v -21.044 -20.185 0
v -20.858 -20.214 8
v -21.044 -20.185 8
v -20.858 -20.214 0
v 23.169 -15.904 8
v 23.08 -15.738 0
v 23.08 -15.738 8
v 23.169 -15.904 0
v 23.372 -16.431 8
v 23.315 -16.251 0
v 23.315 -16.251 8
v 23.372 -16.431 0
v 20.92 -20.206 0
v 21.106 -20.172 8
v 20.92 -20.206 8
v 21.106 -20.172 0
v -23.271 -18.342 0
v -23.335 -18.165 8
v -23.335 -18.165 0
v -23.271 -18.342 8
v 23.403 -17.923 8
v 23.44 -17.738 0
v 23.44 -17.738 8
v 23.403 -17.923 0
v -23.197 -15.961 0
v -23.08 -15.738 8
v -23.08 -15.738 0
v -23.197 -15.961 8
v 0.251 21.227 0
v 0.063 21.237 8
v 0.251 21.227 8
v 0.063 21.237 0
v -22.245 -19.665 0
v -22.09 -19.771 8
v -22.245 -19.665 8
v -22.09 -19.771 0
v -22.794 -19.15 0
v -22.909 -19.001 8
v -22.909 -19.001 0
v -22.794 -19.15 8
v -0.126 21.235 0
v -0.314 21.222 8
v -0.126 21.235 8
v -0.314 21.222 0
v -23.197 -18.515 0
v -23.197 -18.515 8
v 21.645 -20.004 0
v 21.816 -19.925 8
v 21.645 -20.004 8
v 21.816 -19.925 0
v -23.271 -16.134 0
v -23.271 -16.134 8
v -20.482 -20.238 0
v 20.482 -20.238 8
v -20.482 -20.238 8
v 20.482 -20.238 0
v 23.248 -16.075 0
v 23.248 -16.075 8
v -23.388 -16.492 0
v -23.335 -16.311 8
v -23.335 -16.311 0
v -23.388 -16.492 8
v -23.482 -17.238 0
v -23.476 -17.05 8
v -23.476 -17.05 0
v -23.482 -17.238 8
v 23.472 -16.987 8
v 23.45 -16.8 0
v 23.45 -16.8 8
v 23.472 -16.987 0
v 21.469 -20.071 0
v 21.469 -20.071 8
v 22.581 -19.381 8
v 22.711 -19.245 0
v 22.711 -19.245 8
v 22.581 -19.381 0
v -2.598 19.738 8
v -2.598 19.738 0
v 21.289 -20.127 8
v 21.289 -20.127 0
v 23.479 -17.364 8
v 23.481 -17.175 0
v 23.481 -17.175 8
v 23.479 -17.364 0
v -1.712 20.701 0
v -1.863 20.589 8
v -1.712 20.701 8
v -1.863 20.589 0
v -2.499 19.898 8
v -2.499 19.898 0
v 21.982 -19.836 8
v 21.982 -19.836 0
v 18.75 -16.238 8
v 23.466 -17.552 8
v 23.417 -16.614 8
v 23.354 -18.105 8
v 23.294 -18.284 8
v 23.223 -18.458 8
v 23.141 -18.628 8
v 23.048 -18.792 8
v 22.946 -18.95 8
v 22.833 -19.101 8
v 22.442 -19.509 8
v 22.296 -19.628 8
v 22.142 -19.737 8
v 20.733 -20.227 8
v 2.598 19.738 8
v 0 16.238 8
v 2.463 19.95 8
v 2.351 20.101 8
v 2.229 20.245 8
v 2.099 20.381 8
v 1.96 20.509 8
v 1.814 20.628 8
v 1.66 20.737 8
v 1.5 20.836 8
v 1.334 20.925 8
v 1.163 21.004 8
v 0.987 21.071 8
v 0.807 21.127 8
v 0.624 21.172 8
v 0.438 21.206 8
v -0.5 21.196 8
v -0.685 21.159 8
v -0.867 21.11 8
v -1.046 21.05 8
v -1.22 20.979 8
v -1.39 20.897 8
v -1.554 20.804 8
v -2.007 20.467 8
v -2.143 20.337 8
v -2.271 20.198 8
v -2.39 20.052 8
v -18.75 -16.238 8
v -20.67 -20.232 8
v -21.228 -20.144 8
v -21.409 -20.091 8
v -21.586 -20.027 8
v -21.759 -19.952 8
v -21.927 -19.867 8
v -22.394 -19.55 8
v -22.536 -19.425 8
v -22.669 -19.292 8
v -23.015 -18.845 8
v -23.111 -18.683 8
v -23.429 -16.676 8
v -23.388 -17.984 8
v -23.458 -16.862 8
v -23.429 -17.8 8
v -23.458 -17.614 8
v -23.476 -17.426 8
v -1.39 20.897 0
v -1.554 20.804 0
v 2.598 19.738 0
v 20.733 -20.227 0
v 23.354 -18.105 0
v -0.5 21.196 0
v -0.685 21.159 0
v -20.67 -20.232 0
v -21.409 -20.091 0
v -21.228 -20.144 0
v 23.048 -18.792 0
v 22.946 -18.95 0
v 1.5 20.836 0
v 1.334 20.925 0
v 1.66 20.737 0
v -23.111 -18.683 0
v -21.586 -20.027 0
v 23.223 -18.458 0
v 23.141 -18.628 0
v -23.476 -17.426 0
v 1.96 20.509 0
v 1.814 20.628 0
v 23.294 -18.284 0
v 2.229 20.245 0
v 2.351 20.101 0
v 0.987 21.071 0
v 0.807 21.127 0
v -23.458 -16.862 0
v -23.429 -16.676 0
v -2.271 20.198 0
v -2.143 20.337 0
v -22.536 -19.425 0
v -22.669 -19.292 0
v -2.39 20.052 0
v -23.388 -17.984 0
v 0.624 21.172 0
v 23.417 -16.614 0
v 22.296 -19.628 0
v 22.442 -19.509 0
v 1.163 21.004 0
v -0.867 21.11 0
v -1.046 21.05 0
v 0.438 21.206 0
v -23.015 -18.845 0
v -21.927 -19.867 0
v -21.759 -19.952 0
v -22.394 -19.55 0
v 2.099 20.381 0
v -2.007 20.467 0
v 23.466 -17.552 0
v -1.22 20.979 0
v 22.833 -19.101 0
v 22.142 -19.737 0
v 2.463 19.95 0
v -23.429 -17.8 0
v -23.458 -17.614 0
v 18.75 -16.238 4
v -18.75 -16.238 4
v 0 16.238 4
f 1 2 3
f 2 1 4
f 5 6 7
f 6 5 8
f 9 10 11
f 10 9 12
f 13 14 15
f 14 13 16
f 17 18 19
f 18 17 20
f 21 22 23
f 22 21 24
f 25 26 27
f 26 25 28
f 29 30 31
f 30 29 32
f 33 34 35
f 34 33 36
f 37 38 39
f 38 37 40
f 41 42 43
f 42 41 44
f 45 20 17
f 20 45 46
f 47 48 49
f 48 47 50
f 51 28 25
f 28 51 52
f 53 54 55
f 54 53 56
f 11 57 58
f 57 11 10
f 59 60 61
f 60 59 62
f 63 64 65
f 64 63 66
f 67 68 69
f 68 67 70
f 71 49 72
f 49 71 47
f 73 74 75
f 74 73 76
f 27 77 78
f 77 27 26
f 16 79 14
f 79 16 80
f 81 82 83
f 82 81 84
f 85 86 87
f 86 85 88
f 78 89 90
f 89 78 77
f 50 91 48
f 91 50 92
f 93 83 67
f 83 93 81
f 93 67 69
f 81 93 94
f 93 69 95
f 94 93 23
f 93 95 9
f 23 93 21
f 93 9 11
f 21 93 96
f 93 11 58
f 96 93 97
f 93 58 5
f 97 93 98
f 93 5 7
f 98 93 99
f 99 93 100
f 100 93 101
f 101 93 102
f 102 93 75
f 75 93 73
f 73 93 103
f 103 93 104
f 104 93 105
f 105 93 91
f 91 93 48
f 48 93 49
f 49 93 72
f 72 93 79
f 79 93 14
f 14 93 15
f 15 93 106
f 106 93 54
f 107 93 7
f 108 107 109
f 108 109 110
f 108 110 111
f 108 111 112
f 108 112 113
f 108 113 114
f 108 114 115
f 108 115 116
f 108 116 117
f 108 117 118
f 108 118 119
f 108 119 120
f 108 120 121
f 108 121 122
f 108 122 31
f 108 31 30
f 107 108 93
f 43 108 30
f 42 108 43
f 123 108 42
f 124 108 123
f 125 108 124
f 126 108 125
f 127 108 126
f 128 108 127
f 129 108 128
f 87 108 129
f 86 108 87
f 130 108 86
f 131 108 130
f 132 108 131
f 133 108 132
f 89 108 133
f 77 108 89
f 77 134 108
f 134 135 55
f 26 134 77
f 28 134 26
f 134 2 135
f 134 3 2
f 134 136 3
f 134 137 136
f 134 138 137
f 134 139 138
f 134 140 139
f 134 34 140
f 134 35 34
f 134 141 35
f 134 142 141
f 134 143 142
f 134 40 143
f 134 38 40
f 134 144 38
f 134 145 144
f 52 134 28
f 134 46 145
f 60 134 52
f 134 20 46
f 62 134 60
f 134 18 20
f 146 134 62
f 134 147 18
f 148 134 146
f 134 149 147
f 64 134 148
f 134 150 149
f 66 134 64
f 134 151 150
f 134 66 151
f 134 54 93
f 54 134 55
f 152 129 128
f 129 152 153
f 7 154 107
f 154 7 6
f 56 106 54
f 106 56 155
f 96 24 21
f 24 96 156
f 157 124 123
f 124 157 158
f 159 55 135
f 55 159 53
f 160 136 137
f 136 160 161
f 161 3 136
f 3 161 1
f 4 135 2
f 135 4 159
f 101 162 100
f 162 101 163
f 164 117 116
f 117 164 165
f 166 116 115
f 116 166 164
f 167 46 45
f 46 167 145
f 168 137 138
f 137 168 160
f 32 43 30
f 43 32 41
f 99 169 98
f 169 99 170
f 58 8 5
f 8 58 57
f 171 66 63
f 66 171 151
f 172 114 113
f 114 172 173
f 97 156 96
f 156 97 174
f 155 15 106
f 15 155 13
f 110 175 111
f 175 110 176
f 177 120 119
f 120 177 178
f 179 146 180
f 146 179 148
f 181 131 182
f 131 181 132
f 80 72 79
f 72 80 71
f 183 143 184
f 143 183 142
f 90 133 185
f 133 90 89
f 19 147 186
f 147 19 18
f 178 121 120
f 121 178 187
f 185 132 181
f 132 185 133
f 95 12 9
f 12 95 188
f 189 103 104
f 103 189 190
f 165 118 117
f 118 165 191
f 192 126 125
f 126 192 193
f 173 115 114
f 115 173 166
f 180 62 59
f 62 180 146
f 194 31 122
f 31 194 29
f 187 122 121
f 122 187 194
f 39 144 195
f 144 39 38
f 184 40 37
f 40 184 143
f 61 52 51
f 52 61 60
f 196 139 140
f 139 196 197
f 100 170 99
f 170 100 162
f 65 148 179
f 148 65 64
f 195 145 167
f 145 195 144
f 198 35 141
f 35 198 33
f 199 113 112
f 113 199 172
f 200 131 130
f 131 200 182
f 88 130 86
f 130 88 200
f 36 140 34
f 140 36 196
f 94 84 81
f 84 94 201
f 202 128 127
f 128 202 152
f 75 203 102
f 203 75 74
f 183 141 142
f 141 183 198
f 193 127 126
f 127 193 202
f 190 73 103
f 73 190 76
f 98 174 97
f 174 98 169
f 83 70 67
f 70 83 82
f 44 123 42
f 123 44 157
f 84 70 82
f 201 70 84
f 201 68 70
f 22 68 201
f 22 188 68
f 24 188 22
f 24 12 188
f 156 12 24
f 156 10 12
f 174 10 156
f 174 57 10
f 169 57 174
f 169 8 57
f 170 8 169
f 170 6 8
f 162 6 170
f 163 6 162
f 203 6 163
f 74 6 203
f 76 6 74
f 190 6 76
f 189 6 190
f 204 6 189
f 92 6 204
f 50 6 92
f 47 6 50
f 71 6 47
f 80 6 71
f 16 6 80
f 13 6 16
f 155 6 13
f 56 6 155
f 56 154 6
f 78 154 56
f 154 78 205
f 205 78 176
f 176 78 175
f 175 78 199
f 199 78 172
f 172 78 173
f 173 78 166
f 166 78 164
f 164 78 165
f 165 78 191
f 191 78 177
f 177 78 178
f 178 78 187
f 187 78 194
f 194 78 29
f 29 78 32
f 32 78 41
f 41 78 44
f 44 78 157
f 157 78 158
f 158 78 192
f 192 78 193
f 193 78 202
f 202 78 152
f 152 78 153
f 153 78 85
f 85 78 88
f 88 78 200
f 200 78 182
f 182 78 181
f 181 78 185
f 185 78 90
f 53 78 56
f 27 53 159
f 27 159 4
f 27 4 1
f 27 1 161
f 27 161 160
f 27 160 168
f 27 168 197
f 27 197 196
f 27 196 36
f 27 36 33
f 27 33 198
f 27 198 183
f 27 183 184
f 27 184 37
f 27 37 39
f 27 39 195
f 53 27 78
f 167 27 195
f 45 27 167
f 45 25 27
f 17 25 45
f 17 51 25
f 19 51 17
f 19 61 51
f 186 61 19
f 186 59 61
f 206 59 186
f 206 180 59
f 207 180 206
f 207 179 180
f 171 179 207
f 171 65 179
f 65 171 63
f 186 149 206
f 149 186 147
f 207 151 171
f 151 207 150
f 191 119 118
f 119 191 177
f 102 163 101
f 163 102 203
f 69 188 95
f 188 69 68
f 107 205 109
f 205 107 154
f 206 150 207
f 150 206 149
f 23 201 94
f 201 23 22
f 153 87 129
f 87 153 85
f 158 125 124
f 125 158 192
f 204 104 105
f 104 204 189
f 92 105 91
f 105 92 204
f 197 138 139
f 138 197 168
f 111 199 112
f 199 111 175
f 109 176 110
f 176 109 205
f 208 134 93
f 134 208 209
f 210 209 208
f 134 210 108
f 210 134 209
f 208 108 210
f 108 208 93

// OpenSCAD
/*************************************

Protection de prisme optique en TPU
Impression en TPU 95A (20% de remplissage)

Ourida Smahi / Olivier Boesch
Lycée Saint Exupéry

**************************************/

$fn = 100;          // finesse de rendu (nb de segments par cercle)

a = 37.5;           //mm - arete du prisme
h = a * sqrt(3) /2; //mm - hauteur du relative à l'arète
ep = 4;             //mm - épaisseur de matière
rayon_arrondi = 3;  //mm - rayon de l'arrondi extérieur
h_prisme = 45;      //mm - hauteur du prisme
eps = 0.01;         //mm - décalage pour découpe (preview seulement)

//dessin des faces supérieures et inférieures du prisme
module triangle(){
	polygon([[-a/2,-h/2],[a/2,-h/2],[0,h/2]]);
}

//dessin du prisme
module prisme(){
	color("Gray", 0.5) linear_extrude(h_prisme) triangle();
}

//dessin d'une protection
module protection(){
	difference(){
		linear_extrude(2*ep) offset(r=rayon_arrondi) offset(delta = ep-rayon_arrondi) triangle();
		translate([0,0,-eps]) linear_extrude(ep+eps)triangle();
	}
}


//dessin total en preview
if($preview){
	color("orange") translate([0,0,ep]) rotate([0,180,0]) protection();
	prisme();
	color("orange") translate([0,0,h_prisme-ep]) protection();
}
//dessin en fabrication (render)
else{
	translate([0,0,2*ep]) rotate([0,180,0]) protection();
}
